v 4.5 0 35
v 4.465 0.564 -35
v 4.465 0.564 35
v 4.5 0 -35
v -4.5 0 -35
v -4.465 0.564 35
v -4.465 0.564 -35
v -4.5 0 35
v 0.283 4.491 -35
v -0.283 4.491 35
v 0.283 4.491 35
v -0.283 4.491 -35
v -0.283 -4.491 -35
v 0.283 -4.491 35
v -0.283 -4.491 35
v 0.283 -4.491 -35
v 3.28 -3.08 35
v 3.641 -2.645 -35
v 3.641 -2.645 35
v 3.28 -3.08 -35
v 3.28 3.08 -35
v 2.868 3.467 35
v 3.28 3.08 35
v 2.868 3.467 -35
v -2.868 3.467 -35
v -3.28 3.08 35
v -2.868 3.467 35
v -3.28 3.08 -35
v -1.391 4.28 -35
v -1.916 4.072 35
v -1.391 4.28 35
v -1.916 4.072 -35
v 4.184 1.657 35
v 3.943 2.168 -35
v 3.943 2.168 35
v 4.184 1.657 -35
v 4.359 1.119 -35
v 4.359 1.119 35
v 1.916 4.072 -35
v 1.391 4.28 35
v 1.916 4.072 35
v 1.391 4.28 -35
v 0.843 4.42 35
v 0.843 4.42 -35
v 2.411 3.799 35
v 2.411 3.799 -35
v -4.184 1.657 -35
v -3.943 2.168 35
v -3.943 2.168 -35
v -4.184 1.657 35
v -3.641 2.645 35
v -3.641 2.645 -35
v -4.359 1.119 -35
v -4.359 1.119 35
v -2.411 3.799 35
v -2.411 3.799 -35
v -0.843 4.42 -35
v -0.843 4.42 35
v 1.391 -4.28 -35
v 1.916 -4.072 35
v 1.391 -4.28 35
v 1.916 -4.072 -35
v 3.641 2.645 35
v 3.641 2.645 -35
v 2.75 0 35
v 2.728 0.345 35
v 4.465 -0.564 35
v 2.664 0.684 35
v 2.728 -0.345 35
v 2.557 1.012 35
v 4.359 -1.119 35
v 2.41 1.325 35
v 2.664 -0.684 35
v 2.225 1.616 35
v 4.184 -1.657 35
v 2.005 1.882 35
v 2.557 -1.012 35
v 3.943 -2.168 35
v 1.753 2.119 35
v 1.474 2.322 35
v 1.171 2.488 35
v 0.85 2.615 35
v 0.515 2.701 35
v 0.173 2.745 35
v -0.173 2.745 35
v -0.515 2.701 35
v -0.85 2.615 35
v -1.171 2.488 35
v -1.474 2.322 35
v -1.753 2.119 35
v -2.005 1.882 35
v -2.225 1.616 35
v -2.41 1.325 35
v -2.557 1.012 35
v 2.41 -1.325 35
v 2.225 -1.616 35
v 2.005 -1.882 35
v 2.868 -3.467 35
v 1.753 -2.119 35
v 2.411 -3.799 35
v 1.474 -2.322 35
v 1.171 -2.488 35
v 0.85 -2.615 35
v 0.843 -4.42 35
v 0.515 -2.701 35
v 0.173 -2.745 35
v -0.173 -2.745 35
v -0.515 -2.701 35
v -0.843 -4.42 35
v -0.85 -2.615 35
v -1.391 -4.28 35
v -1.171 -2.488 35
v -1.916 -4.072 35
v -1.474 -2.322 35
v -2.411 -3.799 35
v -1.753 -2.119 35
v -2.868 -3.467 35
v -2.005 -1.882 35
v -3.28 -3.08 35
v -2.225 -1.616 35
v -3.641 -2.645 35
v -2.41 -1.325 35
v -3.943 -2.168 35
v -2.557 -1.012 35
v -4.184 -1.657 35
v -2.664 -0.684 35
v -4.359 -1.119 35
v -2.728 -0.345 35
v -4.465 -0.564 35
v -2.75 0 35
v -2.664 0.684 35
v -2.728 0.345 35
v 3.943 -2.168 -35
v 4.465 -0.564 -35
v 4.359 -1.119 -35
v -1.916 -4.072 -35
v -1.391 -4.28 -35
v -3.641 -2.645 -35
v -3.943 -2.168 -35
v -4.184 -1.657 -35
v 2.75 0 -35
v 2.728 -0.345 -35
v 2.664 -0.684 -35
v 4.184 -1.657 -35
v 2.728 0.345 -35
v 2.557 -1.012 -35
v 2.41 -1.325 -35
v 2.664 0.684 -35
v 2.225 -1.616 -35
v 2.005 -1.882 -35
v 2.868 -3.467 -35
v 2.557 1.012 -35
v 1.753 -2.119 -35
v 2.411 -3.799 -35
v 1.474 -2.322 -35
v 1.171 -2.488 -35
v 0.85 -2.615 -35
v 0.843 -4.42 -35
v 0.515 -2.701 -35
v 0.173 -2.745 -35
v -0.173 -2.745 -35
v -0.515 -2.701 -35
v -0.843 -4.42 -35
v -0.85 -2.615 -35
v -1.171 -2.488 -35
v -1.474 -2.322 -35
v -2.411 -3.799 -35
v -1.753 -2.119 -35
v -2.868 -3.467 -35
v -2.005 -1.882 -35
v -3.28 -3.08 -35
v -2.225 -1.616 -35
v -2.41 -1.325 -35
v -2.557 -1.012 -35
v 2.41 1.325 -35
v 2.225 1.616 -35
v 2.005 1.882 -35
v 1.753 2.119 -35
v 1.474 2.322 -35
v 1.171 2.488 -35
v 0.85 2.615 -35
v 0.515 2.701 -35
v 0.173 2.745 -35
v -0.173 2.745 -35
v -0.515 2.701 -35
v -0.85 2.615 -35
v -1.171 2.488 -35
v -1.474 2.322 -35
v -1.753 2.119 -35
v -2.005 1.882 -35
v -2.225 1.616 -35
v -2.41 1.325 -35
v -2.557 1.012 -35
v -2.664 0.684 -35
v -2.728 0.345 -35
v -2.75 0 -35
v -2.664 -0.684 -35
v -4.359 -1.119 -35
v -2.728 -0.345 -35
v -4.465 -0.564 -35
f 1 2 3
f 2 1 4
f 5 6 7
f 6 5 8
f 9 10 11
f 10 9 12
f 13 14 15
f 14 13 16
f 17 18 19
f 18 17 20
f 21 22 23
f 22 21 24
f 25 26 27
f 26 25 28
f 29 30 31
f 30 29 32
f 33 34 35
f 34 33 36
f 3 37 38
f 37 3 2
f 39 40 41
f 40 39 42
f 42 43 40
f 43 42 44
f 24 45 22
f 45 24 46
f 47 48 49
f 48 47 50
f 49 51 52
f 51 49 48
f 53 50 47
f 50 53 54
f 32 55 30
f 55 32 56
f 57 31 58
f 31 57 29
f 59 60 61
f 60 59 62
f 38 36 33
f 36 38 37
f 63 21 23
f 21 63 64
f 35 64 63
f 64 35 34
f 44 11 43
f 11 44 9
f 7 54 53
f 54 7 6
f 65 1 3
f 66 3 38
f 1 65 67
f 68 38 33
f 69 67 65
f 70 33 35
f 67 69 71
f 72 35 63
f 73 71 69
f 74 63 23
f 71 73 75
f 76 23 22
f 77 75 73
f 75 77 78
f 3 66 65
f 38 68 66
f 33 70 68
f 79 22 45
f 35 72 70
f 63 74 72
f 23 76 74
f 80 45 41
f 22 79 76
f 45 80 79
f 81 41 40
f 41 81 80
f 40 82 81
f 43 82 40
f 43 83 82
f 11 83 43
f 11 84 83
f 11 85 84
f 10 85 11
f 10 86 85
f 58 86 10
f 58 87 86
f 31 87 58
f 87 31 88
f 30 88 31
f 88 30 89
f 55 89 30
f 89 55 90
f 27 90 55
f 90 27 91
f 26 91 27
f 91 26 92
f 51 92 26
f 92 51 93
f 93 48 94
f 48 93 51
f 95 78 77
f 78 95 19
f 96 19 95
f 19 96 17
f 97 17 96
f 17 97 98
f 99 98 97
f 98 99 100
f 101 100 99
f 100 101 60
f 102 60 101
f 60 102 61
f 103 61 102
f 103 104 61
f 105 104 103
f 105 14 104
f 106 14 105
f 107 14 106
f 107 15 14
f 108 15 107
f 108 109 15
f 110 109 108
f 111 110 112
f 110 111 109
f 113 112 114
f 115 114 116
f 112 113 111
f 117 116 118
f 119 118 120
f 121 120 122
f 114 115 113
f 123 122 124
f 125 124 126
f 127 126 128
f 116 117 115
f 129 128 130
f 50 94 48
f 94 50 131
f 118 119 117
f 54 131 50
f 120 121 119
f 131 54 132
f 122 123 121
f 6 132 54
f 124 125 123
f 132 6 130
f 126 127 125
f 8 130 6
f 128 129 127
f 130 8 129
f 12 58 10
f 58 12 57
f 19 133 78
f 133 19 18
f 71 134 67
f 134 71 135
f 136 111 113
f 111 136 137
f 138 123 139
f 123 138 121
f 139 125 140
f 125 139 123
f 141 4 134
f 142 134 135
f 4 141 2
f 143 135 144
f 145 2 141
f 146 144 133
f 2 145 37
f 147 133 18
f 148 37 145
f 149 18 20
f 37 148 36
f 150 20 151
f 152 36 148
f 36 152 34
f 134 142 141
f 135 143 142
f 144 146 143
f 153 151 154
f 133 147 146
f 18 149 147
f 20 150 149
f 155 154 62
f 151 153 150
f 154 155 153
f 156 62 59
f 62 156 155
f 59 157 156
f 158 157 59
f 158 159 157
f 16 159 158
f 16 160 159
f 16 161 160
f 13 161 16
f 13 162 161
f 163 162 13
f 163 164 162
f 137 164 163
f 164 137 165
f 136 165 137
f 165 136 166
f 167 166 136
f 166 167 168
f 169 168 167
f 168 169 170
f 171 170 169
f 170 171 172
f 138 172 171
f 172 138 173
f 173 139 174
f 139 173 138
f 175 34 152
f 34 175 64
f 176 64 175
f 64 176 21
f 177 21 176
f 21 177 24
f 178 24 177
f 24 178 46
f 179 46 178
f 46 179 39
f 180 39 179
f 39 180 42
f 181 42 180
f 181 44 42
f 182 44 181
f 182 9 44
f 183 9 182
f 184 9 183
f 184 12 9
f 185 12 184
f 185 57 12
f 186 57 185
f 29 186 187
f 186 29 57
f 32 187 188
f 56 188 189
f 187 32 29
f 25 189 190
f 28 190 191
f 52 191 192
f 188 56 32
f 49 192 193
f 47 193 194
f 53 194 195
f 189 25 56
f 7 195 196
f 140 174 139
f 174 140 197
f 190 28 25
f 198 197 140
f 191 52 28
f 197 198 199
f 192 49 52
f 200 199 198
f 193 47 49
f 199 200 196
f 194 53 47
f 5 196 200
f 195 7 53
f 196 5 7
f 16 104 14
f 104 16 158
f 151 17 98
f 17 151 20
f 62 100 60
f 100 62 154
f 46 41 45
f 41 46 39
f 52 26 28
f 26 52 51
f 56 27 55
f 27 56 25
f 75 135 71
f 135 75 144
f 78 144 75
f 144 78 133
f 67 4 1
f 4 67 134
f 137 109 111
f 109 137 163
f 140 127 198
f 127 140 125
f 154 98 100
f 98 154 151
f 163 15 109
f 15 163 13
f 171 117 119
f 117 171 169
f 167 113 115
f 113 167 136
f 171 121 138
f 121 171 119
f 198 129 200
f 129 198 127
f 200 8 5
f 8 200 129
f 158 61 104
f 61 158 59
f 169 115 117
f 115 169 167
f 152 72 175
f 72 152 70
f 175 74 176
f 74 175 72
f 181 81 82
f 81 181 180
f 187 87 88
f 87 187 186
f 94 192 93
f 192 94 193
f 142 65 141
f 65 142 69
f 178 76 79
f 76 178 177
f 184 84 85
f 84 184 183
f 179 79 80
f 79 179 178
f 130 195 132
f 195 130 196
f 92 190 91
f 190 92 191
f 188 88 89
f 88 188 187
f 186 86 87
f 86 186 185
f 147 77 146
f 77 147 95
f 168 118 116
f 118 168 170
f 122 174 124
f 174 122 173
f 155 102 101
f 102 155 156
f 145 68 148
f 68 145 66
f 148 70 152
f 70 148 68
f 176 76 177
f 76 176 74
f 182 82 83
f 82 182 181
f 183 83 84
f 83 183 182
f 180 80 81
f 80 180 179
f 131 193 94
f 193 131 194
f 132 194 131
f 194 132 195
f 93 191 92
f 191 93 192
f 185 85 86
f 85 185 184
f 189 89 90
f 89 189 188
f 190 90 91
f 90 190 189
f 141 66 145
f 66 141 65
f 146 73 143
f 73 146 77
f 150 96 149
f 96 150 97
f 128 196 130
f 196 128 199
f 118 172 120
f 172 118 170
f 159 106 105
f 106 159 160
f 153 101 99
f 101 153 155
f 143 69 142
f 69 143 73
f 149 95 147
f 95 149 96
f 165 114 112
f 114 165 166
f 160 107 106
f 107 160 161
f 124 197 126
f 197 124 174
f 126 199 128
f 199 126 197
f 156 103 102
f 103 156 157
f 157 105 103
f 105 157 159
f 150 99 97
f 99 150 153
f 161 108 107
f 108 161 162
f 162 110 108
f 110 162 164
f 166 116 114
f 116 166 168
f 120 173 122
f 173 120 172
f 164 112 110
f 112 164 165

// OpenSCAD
$fn = 50;


difference() {
	union() {
		translate(v = [0, 0, -35.0000000000]) {
			cylinder(h = 70, r = 4.5000000000);
		}
	}
	union() {
		translate(v = [0, 0, -100.0000000000]) {
			cylinder(h = 200, r = 2.7500000000);
		}
	}
}
